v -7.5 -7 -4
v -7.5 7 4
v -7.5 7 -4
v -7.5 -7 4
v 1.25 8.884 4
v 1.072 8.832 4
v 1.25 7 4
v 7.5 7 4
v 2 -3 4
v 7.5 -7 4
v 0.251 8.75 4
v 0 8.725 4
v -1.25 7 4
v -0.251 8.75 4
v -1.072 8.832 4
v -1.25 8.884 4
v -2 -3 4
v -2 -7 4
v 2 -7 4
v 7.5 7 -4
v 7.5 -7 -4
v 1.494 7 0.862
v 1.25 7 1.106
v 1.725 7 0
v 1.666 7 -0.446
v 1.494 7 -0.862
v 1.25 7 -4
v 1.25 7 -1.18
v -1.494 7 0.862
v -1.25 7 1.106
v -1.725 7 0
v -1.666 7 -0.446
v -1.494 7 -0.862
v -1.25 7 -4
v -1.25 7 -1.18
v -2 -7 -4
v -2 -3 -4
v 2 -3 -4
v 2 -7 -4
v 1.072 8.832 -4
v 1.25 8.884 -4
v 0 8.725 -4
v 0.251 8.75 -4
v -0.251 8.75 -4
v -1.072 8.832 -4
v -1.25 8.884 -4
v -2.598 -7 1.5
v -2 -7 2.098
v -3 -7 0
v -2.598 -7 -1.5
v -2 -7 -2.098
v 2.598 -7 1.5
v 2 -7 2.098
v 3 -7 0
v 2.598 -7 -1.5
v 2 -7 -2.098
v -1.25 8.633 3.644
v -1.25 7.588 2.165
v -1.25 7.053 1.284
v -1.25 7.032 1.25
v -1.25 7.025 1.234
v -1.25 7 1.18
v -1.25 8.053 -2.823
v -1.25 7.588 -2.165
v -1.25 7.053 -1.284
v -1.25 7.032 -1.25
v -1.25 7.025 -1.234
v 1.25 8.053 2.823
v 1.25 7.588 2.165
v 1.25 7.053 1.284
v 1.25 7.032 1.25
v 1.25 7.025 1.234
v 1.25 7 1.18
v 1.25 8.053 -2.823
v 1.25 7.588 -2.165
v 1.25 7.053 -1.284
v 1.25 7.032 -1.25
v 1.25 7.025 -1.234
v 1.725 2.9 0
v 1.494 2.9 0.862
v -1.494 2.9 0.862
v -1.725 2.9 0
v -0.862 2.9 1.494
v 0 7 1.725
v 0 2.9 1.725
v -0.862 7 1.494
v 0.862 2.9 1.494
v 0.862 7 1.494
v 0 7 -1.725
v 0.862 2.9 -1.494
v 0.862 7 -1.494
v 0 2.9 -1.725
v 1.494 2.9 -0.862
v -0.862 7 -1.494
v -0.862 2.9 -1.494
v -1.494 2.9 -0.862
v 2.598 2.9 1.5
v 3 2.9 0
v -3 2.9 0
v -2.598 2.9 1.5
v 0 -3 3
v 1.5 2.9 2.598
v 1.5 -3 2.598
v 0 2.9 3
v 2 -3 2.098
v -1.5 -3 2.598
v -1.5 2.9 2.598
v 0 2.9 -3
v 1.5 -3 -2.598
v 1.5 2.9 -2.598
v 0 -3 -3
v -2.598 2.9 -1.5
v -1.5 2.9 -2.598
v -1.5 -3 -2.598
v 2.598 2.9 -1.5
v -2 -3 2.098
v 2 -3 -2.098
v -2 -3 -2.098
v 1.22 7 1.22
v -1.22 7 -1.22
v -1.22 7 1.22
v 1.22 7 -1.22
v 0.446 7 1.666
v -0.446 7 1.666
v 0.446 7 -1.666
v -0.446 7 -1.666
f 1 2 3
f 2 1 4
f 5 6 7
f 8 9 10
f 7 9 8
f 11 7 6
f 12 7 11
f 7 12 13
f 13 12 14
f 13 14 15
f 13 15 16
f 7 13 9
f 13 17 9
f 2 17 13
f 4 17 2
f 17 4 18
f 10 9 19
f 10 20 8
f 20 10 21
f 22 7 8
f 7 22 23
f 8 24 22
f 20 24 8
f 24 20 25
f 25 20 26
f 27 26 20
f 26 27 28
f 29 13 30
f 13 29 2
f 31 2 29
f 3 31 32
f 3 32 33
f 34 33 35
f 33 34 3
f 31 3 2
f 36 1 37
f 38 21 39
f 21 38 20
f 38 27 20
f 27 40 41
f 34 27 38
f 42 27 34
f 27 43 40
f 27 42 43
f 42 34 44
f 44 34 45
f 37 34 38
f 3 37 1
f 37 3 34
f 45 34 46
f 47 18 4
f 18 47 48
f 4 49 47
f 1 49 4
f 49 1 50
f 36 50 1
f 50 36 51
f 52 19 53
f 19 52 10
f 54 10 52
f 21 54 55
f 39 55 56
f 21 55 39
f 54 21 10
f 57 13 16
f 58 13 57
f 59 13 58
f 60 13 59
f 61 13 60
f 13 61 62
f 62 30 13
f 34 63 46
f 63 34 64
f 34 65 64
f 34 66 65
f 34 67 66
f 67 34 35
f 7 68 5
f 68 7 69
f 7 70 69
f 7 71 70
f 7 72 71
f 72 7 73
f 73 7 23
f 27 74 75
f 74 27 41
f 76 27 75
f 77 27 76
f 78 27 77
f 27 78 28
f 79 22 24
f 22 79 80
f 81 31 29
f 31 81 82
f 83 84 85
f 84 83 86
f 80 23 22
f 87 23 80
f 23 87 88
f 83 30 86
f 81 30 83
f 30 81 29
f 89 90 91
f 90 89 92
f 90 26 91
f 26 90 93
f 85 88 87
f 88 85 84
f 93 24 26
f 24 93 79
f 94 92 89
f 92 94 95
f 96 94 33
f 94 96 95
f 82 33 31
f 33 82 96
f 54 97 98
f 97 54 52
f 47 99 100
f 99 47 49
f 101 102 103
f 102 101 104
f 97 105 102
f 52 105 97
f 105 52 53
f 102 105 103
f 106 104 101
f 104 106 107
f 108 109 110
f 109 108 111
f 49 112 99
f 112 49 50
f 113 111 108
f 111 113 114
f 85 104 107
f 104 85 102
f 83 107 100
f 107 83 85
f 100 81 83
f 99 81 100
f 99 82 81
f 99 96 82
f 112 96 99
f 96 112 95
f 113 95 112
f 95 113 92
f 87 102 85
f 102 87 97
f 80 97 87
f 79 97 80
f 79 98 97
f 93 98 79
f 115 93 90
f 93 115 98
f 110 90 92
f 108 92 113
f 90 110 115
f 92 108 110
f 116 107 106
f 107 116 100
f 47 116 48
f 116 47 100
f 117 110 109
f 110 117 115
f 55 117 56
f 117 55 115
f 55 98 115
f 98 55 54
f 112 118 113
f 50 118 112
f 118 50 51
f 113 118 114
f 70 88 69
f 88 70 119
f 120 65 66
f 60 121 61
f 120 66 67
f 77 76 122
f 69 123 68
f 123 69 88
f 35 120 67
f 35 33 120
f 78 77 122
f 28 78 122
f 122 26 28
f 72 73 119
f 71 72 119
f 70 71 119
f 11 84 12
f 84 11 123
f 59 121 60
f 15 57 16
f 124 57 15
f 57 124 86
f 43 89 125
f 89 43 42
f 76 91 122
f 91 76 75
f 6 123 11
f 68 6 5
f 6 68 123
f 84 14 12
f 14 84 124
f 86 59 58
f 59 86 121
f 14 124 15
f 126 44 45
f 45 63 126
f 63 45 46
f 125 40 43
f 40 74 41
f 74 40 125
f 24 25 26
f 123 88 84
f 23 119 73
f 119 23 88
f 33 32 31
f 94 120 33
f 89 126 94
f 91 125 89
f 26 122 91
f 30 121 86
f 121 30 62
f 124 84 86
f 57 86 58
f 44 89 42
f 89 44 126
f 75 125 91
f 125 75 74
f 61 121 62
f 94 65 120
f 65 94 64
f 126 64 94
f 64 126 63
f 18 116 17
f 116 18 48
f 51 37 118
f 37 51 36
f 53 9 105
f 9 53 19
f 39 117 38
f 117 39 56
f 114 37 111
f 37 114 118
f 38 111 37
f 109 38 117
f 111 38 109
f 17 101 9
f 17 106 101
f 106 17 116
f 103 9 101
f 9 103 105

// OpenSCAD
// file: ../configuration.scad
// Increase this if your slicer or printer make holes too tight.
extra_radius = 0.1;

// OD = outside diameter, corner to corner.
m3_nut_od = 6.1;
m3_nut_radius = m3_nut_od/2 + 0.2 + extra_radius;
m3_washer_radius = 3.5 + extra_radius;

// Major diameter of metric 3mm thread.
m3_major = 2.85;
m3_radius = m3_major/2 + extra_radius;
m3_wide_radius = m3_major/2 + extra_radius + 0.2;
// For M3 holes that needs to be tapped in the plastic
m3_tap_radius = 2.5/2 + extra_radius;

// NEMA17 stepper motors.
motor_shaft_diameter = 5;
motor_shaft_radius = motor_shaft_diameter/2 + extra_radius;

// Frame brackets. M3x8mm screws work best with 3.6 mm brackets.
thickness = 3.6;

// OpenBeam or Misumi. Currently only 15x15 mm, but there is a plan
// to make models more parametric and allow 20x20 mm in the future.
extrusion = 15;

// Placement for the NEMA17 stepper motors.
motor_offset = 44;
motor_length = 47;
// main file
// Wire guide for endstop wires.
//
// Since this build uses the printed sliders running directly on the openbeam
// extrusion, wires can not be run inside the extrusion grooves. These guide
// brackets are installed top and bottom on the upright beams and the endstop
// wires are kept away from the upright bey them.
//

include <../configuration.scad>;

thickness = 14;  // 1mm thicker than linear rail.
width = 15;  // Same as vertical extrusion.
height = 8;
nothcW = 4;
nothchD = 4;

module EndStopWireGuide() {
    difference() {
        union() {
            // The main body
            cube([width, thickness, height], center=true);
            // The bit that fits into the extruded groove
            translate([0, 2.5, 0])
                cube([2.5, thickness, height], center=true);
        }
        // The screw hole
        translate([0, 0, 0])
            rotate([90, 0, 0]) {
                // Main shaft hole
                cylinder(r=m3_wide_radius, h=thickness+2, center=true, $fn=12);
                // Inset area for screw head
                translate([0, 0, 2+0.1])
                    cylinder(d=6, h=thickness-4, center=true, $fn=12);
                // Flared end for nut
                translate([0, 0, -thickness/2])
                    scale([1, 1, -1])
                        cylinder(r1=m3_wide_radius, r2=7, h=4, $fn=24);
            }
        // The notch in front where the wire fits in
        translate([-nothcW/2, -thickness/2-1, -height/2-1]) {
            cube([nothcW, nothchD+1, height+2]);
        }
    }
}

EndStopWireGuide();
